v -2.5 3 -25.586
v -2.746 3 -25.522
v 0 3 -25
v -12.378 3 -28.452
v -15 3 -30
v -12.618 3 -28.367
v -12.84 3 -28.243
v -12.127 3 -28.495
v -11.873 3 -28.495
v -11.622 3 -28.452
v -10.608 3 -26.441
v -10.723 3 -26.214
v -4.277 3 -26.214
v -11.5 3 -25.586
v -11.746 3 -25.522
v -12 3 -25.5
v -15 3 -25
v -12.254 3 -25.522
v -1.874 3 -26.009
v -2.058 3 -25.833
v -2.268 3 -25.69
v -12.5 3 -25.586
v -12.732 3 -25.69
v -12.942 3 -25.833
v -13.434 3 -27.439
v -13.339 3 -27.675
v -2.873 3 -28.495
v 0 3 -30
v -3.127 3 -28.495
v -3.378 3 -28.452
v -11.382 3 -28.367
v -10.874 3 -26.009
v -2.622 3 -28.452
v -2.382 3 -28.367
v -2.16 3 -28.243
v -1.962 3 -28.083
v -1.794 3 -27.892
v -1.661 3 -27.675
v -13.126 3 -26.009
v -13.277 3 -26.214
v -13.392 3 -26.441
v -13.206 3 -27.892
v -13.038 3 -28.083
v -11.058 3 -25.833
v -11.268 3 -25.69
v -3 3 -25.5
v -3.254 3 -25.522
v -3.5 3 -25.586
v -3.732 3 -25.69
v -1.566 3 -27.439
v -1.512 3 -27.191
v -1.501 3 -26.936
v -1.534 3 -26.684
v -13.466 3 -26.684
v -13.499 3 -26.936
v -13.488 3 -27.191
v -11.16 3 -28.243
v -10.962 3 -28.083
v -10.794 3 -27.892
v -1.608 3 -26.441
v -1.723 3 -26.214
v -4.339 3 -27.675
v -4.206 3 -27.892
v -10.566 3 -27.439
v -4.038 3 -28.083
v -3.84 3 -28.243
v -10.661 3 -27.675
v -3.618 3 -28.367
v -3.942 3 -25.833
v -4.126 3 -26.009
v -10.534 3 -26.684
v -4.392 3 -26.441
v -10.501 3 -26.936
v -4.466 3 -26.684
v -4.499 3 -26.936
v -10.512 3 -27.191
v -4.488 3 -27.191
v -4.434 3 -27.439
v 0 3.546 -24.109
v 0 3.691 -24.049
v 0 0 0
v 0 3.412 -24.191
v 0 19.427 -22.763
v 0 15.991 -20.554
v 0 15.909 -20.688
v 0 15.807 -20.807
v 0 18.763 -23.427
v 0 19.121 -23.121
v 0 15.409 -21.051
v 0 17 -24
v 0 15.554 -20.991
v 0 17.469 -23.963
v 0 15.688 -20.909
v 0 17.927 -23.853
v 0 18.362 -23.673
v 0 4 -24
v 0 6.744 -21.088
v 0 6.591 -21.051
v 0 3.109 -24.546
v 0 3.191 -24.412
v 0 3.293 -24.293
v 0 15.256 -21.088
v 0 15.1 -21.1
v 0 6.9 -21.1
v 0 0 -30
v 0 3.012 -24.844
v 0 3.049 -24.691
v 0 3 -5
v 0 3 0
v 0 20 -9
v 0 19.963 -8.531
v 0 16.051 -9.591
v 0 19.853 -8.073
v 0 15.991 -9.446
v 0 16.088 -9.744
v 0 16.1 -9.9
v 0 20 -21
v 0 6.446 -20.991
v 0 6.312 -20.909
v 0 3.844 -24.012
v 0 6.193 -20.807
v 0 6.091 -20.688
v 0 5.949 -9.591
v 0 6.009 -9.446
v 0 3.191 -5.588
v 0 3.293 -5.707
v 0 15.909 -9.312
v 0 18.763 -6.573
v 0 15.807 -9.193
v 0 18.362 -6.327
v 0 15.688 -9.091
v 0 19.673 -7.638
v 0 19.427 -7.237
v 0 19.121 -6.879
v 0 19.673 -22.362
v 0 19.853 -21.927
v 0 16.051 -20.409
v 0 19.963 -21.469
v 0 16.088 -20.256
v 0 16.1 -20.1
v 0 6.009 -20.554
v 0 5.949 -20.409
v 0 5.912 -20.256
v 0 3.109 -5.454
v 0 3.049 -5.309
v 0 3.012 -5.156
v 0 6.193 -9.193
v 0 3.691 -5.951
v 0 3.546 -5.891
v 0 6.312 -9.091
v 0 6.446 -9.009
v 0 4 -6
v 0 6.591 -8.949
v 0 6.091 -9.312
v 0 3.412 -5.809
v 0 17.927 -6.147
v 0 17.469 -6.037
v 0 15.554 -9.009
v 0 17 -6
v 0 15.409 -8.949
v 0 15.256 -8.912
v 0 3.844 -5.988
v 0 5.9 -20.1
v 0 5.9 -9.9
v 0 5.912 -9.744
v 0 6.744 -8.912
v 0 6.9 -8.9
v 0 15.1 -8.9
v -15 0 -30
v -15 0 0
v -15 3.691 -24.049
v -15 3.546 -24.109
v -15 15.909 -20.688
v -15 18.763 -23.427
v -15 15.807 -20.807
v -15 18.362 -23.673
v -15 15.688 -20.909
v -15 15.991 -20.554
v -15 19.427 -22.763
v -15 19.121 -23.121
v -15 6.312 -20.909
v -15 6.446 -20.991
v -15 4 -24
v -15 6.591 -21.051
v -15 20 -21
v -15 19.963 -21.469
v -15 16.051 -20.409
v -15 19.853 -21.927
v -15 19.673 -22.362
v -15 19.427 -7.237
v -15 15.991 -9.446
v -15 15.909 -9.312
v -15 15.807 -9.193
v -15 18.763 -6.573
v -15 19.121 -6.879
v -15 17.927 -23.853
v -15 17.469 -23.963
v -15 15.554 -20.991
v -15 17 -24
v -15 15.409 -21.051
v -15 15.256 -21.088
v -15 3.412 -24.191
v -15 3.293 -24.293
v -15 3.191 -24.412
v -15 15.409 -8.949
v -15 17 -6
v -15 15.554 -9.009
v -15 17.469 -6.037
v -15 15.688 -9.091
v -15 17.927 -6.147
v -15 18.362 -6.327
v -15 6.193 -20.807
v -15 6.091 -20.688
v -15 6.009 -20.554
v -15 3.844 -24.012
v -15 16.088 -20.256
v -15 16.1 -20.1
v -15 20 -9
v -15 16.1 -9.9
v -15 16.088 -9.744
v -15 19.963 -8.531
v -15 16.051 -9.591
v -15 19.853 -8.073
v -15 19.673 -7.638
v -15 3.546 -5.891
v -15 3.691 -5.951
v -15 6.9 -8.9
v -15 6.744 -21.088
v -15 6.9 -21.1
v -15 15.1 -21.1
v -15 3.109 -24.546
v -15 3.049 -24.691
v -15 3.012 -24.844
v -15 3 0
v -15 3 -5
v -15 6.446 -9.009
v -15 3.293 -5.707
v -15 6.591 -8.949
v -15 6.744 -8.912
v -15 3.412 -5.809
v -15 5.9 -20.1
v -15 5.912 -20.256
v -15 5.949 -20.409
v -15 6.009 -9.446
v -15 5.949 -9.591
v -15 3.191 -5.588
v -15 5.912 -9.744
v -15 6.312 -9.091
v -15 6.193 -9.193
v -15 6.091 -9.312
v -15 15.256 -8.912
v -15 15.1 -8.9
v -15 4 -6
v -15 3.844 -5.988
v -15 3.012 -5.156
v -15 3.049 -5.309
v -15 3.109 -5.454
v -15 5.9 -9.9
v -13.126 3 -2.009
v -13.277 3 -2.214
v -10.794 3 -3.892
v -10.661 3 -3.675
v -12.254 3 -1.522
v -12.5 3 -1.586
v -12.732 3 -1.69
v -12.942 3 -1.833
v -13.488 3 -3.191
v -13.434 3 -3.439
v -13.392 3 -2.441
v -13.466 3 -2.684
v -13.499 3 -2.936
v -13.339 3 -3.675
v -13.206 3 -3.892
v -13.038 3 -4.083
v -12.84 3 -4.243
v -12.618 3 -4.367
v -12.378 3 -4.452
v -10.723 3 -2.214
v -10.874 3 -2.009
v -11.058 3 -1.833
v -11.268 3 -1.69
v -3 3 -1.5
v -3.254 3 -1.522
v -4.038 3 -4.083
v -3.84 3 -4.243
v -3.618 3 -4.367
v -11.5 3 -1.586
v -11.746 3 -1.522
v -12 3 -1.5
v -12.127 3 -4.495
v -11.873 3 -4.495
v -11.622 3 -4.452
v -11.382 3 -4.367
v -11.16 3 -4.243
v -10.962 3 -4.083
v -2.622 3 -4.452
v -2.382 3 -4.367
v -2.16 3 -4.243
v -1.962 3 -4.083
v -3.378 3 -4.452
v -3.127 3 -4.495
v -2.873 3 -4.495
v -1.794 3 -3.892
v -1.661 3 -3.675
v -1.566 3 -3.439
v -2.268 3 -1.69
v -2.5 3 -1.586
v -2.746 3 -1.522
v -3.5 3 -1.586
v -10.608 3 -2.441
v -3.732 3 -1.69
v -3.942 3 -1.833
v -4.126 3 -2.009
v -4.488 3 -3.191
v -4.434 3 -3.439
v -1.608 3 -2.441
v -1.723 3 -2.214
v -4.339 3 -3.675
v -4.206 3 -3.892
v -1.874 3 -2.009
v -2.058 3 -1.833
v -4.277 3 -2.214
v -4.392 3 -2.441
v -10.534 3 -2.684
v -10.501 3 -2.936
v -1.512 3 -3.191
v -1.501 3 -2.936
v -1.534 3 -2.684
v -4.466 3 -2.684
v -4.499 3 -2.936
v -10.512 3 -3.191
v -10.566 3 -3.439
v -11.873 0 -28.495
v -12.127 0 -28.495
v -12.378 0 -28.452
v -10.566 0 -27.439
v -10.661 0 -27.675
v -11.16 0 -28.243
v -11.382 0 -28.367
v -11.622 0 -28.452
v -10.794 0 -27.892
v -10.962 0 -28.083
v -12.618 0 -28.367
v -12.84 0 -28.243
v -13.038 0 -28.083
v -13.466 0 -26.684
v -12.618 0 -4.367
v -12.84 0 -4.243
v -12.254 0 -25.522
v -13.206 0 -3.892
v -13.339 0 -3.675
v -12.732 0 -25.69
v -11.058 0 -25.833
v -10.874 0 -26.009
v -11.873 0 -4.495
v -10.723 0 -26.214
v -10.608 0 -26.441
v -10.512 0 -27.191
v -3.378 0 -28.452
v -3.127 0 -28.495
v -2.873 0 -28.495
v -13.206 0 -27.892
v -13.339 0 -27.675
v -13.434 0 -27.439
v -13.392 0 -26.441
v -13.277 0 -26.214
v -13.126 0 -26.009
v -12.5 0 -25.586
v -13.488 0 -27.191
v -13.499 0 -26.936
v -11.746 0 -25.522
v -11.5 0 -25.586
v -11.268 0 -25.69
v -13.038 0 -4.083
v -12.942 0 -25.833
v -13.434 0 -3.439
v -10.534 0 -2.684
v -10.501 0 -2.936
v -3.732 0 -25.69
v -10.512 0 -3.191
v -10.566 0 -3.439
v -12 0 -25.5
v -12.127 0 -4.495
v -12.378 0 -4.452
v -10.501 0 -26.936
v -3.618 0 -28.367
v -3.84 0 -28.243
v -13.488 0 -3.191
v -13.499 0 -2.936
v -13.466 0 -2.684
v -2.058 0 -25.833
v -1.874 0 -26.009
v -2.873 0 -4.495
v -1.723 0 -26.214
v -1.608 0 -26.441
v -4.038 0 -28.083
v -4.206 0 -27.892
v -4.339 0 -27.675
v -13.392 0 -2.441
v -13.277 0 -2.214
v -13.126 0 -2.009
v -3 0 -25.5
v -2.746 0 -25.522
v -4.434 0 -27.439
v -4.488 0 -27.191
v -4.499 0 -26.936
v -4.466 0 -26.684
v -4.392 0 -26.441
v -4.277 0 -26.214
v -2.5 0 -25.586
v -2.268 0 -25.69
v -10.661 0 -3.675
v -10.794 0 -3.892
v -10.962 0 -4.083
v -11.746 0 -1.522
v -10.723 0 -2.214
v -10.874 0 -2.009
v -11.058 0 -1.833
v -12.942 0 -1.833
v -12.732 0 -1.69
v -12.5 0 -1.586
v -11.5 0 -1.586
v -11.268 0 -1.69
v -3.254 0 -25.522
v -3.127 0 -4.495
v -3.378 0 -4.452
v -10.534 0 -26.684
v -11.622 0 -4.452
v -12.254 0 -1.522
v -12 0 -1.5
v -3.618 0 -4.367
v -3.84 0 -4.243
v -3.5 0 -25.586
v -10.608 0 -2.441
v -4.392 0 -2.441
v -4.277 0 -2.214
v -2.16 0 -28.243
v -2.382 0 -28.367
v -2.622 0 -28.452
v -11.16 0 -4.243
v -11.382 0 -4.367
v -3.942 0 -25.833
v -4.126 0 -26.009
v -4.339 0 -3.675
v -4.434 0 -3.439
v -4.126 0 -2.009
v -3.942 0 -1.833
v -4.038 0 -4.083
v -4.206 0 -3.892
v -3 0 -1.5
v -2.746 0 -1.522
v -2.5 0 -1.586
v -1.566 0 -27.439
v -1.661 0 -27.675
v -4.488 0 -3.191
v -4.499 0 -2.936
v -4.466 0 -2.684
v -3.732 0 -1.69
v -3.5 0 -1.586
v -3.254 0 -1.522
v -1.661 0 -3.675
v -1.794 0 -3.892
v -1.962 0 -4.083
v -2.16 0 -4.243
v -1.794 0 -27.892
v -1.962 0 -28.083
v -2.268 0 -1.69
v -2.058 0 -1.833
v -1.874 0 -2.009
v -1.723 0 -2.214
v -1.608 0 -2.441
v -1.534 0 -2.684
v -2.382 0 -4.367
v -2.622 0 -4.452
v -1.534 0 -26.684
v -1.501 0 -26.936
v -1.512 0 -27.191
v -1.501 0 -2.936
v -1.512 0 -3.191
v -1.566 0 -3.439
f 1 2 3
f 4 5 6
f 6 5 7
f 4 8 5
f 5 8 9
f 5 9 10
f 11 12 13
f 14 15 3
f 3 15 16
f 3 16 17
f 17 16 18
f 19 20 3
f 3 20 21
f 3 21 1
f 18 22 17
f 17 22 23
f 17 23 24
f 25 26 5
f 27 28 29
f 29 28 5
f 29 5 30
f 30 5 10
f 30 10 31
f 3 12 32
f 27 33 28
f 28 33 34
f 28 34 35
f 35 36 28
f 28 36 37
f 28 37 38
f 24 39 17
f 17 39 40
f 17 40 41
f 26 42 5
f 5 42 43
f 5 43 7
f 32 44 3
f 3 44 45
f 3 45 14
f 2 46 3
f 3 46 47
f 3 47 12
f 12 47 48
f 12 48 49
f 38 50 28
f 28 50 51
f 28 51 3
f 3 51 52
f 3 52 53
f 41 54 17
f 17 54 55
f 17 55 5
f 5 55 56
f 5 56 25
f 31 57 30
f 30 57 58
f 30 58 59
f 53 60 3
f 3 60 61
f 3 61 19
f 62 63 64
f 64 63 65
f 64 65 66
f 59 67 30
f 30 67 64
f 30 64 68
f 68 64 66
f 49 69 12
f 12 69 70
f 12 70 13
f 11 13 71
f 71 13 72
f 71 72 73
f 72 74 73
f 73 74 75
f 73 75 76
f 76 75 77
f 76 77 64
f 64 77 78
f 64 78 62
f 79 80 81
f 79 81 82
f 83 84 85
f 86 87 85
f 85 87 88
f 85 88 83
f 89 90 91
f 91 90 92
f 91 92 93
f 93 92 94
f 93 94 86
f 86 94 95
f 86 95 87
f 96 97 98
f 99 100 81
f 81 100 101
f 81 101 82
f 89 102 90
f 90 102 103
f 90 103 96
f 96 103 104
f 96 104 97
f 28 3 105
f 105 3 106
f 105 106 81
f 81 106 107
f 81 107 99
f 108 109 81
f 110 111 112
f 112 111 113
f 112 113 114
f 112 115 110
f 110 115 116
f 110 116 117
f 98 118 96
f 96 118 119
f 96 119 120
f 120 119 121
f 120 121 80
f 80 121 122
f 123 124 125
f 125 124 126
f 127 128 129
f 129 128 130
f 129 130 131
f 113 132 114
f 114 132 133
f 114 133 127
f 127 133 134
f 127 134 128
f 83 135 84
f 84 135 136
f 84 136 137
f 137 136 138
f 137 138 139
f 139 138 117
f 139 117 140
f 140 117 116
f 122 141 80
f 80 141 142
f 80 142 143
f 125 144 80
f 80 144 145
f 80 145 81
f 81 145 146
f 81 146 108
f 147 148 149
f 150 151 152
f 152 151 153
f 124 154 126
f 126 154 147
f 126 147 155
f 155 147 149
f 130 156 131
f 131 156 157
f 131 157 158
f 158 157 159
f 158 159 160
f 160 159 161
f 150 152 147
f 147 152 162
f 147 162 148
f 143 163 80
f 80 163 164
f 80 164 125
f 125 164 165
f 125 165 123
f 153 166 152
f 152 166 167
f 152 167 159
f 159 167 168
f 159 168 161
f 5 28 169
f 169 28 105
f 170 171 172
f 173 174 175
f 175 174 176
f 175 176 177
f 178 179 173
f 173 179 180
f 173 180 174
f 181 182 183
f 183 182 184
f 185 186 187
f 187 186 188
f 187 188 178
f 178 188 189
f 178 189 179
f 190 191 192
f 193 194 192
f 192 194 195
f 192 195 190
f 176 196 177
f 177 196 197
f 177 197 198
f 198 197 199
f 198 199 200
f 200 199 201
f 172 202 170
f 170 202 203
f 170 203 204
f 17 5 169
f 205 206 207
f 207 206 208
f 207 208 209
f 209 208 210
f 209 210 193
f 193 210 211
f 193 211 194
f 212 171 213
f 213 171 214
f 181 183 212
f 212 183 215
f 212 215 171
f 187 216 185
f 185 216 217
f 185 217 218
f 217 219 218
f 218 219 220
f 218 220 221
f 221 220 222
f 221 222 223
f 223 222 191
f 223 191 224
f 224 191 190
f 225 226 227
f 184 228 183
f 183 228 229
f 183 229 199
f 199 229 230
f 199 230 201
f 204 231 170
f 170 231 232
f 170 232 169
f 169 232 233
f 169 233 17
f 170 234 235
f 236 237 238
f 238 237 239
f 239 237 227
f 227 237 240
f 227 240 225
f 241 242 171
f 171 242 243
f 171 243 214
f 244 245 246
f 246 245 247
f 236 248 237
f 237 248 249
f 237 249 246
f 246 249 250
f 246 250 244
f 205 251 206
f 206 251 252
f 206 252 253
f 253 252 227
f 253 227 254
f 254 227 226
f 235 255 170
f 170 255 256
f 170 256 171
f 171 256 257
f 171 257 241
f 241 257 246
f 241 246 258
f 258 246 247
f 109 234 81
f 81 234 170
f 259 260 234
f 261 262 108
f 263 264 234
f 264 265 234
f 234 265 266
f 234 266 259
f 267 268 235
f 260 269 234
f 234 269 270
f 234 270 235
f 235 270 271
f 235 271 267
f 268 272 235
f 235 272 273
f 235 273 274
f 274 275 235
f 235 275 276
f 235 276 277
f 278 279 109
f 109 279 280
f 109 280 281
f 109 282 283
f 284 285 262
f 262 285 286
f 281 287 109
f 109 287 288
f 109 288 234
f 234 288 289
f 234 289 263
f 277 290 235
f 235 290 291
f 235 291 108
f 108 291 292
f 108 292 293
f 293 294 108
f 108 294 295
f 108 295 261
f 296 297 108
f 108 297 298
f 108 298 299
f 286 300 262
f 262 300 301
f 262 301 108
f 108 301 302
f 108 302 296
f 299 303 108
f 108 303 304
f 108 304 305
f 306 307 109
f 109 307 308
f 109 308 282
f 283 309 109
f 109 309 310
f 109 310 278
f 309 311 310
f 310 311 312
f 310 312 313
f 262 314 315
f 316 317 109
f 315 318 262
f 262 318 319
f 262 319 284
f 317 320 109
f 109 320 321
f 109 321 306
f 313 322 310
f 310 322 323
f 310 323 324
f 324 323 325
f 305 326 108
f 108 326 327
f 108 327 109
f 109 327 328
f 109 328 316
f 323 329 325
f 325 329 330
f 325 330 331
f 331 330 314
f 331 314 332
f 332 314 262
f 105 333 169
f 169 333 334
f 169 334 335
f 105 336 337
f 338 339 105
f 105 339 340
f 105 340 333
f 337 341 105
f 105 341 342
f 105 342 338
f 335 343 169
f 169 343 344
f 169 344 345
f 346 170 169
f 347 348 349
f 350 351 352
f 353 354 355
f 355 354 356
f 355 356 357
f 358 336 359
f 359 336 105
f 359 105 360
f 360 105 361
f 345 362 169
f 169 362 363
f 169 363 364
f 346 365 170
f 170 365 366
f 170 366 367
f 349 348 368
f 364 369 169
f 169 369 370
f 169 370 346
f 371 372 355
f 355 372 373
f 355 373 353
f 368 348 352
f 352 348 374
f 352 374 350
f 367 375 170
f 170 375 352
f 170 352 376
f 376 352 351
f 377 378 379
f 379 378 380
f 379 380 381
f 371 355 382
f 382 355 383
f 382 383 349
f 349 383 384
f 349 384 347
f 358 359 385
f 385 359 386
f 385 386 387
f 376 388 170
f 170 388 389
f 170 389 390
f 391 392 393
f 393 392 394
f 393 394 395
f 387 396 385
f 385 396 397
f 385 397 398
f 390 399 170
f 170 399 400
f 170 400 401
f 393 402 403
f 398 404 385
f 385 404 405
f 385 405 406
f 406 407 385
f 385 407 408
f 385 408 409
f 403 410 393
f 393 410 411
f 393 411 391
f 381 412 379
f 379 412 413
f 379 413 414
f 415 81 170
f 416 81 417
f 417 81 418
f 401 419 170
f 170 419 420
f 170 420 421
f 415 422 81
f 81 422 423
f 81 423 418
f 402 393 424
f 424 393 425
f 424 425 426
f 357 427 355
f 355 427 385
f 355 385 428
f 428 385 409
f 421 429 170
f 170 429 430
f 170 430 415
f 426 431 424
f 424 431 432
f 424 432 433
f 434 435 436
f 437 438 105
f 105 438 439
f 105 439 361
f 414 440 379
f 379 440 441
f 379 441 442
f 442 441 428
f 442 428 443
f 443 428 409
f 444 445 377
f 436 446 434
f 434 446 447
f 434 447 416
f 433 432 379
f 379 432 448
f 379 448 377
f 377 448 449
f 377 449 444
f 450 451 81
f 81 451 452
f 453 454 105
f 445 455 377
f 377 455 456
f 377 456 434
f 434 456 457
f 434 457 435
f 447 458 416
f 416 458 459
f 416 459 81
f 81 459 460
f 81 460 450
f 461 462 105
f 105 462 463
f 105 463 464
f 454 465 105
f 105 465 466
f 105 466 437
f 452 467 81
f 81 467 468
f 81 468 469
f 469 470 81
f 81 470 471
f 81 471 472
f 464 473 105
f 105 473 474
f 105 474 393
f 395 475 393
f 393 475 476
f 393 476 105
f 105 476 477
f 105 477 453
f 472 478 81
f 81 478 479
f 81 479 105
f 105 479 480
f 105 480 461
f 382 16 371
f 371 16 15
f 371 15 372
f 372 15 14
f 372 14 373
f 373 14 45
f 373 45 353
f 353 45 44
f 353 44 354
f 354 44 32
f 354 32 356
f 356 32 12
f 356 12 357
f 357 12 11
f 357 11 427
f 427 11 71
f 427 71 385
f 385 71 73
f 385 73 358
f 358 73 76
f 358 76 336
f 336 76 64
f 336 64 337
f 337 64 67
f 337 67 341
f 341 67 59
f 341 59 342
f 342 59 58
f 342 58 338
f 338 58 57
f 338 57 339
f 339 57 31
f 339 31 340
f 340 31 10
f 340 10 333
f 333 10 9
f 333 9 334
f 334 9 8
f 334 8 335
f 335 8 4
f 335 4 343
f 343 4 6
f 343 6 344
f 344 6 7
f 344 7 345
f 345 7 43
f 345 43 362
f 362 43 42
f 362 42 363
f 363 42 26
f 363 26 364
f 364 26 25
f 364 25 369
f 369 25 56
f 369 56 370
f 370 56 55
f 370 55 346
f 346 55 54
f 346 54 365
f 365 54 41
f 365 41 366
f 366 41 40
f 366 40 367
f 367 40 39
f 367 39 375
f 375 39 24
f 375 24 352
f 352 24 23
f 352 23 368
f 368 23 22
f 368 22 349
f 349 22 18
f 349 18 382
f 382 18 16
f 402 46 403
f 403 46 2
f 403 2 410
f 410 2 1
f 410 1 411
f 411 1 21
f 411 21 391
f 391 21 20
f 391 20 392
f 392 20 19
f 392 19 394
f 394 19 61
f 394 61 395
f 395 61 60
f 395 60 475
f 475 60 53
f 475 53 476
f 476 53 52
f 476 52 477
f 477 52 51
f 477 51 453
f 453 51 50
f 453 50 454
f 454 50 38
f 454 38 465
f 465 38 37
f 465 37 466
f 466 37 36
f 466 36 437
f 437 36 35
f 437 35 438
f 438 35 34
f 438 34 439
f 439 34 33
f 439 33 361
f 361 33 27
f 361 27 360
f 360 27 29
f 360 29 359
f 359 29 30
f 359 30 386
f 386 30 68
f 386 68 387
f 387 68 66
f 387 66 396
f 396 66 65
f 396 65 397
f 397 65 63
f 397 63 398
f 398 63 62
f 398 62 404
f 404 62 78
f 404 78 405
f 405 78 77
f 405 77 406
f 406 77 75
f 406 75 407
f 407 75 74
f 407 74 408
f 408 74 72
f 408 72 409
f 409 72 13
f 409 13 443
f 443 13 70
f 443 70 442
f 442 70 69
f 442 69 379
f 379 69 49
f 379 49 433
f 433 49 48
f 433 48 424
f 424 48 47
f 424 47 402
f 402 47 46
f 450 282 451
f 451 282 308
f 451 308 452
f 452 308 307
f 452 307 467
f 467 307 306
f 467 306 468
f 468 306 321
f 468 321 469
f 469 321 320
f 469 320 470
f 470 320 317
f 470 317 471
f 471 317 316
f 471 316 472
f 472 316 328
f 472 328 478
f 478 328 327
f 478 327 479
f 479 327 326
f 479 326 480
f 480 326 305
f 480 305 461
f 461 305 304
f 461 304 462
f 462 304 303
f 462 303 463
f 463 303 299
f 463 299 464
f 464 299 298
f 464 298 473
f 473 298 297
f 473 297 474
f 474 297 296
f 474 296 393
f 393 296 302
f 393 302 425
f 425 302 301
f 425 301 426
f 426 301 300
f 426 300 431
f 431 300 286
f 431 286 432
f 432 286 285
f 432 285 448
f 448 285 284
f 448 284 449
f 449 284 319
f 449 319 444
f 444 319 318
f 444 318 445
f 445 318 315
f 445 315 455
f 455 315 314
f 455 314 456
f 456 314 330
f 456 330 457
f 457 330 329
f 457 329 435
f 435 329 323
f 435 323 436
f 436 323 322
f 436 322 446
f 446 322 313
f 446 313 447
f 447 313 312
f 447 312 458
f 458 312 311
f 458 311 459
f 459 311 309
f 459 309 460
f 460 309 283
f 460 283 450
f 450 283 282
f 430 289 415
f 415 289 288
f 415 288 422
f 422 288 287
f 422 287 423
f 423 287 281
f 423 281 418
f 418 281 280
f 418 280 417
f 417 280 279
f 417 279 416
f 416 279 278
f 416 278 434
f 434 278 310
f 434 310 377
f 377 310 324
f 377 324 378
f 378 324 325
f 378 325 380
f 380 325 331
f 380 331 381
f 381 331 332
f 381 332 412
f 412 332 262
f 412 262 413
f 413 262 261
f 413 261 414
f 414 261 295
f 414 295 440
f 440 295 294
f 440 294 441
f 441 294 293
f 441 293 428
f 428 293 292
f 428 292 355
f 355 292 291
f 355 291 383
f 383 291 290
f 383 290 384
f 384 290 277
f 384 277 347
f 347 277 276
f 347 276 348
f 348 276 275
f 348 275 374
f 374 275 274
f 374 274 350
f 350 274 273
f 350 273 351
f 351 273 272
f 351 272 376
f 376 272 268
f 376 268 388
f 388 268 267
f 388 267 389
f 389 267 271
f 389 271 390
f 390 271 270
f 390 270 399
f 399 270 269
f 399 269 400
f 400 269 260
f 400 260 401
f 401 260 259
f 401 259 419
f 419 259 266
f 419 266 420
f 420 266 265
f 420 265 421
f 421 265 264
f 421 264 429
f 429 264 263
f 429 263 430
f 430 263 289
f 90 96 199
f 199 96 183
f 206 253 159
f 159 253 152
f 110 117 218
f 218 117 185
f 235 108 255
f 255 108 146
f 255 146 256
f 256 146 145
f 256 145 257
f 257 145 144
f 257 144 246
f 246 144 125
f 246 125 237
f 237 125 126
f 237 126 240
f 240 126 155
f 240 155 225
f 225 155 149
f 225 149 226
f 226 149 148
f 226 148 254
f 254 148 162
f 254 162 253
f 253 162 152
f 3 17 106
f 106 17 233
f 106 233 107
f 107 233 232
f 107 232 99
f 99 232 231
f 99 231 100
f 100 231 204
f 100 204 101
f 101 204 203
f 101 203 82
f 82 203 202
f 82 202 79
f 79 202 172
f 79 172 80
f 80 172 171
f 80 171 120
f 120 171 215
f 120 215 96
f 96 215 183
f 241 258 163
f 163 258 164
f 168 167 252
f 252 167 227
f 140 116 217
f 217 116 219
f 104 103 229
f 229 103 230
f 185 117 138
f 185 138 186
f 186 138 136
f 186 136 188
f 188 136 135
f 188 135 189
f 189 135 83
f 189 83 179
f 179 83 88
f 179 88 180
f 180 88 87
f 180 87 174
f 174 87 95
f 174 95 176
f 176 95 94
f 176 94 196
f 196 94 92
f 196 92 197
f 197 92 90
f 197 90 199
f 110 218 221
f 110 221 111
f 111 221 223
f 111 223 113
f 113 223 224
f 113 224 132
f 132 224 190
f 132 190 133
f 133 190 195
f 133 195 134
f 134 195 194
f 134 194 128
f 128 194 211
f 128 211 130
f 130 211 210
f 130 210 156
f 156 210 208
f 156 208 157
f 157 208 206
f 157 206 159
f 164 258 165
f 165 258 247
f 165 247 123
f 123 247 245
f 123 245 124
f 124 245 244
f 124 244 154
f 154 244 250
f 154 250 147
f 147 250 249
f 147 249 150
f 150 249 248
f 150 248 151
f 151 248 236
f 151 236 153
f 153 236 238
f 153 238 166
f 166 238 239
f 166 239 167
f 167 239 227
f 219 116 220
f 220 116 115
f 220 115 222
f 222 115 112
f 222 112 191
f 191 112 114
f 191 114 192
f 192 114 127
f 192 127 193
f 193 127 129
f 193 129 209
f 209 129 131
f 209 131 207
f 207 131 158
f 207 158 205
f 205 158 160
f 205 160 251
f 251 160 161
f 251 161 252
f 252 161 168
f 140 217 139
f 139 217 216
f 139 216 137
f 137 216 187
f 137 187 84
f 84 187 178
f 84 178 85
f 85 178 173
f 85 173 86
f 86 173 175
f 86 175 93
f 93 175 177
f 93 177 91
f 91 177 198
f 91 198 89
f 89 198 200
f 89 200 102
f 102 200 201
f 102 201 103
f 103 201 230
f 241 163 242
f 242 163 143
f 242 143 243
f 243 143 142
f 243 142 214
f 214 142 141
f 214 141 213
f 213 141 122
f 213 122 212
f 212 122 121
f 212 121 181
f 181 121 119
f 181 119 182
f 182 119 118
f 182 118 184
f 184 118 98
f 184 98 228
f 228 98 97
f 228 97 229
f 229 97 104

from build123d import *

# Parameters (mm, degrees)
SKETCH1_W           = 15
SKETCH1_H           = 30
BOSS_EXTRUDE2_DEPTH = 3
SKETCH3_R           = 1.5
CUT_EXTRUDE1_DEPTH  = 3
SKETCH5_W           = 15
SKETCH5_H           = 9
BOSS_EXTRUDE3_DEPTH = 17
FILLET1_R           = 1
FILLET2_R           = 1
SKETCH6_W           = 12.2
SKETCH6_H           = 10.2
CUT_EXTRUDE2_DEPTH  = 40.05124838
FILLET3_R           = 3
FILLET4_R           = 3
FILLET5_R           = 1
FILLET6_R           = 1
FILLET7_R           = 1
FILLET8_R           = 1


with BuildPart() as part:
    # Sketch1 → Boss-Extrude2 (new body)
    with BuildSketch(Plane(origin=(0, 0, 0), x_dir=(1, 0, 0), z_dir=(0, 1, 0))):
        with Locations((-7.5, 15)):
            Rectangle(SKETCH1_W, SKETCH1_H)
    extrude(amount=BOSS_EXTRUDE2_DEPTH)

    # Sketch3 → Cut-Extrude1 (cut)
    with BuildSketch(Plane(origin=(0, 3, 0), x_dir=(1, 0, 0), z_dir=(0, 1, 0))):
        with Locations(Location((-12, 27, 0), (0, 0, 270))):
            Circle(SKETCH3_R)
        with Locations(Location((-3, 27, 0), (0, 0, 270))):
            Circle(SKETCH3_R)
        with Locations(Location((-3, 3, 0), (0, 0, 270))):
            Circle(SKETCH3_R)
        with Locations(Location((-12, 3, 0), (0, 0, 270))):
            Circle(SKETCH3_R)
    extrude(amount=-CUT_EXTRUDE1_DEPTH, mode=Mode.SUBTRACT)

    # Sketch5 → Boss-Extrude3 (add)
    with BuildSketch(Plane(origin=(0, 3, 0), x_dir=(1, 0, 0), z_dir=(0, 1, 0))):
        with Locations((-7.5, 19.5)):
            Rectangle(SKETCH5_W, SKETCH5_H)
        with Locations((-7.5, 10.5)):
            Rectangle(SKETCH5_W, SKETCH5_H)
    extrude(amount=BOSS_EXTRUDE3_DEPTH)

    # Fillet1
    fillet1_edges = [part.edges().sort_by_distance(p)[0] for p in [
        (-7.5, 3, -6),
    ]]
    fillet(fillet1_edges, radius=FILLET1_R)

    # Fillet2
    fillet2_edges = [part.edges().sort_by_distance(p)[0] for p in [
        (-7.5, 3, -24),
    ]]
    fillet(fillet2_edges, radius=FILLET2_R)

    # Sketch6 → Cut-Extrude2 (cut, through all)
    with BuildSketch(Plane(origin=(0, 0, 0), x_dir=(0, 0, -1), z_dir=(1, 0, 0))):
        with Locations((15, 11)):
            Rectangle(SKETCH6_W, SKETCH6_H)
    extrude(amount=-CUT_EXTRUDE2_DEPTH, mode=Mode.SUBTRACT)

    # Fillet3
    fillet3_edges = [part.edges().sort_by_distance(p)[0] for p in [
        (-7.5, 20, -24),
    ]]
    fillet(fillet3_edges, radius=FILLET3_R)

    # Fillet4
    fillet4_edges = [part.edges().sort_by_distance(p)[0] for p in [
        (-7.5, 20, -6),
    ]]
    fillet(fillet4_edges, radius=FILLET4_R)

    # Fillet5
    fillet5_edges = [part.edges().sort_by_distance(p)[0] for p in [
        (-7.5, 5.9, -8.9),
    ]]
    fillet(fillet5_edges, radius=FILLET5_R)

    # Fillet6
    fillet6_edges = [part.edges().sort_by_distance(p)[0] for p in [
        (-7.5, 16.1, -8.9),
    ]]
    fillet(fillet6_edges, radius=FILLET6_R)

    # Fillet7
    fillet7_edges = [part.edges().sort_by_distance(p)[0] for p in [
        (-7.5, 16.1, -21.1),
    ]]
    fillet(fillet7_edges, radius=FILLET7_R)

    # Fillet8
    fillet8_edges = [part.edges().sort_by_distance(p)[0] for p in [
        (-7.5, 5.9, -21.1),
    ]]
    fillet(fillet8_edges, radius=FILLET8_R)


solid = part.part
